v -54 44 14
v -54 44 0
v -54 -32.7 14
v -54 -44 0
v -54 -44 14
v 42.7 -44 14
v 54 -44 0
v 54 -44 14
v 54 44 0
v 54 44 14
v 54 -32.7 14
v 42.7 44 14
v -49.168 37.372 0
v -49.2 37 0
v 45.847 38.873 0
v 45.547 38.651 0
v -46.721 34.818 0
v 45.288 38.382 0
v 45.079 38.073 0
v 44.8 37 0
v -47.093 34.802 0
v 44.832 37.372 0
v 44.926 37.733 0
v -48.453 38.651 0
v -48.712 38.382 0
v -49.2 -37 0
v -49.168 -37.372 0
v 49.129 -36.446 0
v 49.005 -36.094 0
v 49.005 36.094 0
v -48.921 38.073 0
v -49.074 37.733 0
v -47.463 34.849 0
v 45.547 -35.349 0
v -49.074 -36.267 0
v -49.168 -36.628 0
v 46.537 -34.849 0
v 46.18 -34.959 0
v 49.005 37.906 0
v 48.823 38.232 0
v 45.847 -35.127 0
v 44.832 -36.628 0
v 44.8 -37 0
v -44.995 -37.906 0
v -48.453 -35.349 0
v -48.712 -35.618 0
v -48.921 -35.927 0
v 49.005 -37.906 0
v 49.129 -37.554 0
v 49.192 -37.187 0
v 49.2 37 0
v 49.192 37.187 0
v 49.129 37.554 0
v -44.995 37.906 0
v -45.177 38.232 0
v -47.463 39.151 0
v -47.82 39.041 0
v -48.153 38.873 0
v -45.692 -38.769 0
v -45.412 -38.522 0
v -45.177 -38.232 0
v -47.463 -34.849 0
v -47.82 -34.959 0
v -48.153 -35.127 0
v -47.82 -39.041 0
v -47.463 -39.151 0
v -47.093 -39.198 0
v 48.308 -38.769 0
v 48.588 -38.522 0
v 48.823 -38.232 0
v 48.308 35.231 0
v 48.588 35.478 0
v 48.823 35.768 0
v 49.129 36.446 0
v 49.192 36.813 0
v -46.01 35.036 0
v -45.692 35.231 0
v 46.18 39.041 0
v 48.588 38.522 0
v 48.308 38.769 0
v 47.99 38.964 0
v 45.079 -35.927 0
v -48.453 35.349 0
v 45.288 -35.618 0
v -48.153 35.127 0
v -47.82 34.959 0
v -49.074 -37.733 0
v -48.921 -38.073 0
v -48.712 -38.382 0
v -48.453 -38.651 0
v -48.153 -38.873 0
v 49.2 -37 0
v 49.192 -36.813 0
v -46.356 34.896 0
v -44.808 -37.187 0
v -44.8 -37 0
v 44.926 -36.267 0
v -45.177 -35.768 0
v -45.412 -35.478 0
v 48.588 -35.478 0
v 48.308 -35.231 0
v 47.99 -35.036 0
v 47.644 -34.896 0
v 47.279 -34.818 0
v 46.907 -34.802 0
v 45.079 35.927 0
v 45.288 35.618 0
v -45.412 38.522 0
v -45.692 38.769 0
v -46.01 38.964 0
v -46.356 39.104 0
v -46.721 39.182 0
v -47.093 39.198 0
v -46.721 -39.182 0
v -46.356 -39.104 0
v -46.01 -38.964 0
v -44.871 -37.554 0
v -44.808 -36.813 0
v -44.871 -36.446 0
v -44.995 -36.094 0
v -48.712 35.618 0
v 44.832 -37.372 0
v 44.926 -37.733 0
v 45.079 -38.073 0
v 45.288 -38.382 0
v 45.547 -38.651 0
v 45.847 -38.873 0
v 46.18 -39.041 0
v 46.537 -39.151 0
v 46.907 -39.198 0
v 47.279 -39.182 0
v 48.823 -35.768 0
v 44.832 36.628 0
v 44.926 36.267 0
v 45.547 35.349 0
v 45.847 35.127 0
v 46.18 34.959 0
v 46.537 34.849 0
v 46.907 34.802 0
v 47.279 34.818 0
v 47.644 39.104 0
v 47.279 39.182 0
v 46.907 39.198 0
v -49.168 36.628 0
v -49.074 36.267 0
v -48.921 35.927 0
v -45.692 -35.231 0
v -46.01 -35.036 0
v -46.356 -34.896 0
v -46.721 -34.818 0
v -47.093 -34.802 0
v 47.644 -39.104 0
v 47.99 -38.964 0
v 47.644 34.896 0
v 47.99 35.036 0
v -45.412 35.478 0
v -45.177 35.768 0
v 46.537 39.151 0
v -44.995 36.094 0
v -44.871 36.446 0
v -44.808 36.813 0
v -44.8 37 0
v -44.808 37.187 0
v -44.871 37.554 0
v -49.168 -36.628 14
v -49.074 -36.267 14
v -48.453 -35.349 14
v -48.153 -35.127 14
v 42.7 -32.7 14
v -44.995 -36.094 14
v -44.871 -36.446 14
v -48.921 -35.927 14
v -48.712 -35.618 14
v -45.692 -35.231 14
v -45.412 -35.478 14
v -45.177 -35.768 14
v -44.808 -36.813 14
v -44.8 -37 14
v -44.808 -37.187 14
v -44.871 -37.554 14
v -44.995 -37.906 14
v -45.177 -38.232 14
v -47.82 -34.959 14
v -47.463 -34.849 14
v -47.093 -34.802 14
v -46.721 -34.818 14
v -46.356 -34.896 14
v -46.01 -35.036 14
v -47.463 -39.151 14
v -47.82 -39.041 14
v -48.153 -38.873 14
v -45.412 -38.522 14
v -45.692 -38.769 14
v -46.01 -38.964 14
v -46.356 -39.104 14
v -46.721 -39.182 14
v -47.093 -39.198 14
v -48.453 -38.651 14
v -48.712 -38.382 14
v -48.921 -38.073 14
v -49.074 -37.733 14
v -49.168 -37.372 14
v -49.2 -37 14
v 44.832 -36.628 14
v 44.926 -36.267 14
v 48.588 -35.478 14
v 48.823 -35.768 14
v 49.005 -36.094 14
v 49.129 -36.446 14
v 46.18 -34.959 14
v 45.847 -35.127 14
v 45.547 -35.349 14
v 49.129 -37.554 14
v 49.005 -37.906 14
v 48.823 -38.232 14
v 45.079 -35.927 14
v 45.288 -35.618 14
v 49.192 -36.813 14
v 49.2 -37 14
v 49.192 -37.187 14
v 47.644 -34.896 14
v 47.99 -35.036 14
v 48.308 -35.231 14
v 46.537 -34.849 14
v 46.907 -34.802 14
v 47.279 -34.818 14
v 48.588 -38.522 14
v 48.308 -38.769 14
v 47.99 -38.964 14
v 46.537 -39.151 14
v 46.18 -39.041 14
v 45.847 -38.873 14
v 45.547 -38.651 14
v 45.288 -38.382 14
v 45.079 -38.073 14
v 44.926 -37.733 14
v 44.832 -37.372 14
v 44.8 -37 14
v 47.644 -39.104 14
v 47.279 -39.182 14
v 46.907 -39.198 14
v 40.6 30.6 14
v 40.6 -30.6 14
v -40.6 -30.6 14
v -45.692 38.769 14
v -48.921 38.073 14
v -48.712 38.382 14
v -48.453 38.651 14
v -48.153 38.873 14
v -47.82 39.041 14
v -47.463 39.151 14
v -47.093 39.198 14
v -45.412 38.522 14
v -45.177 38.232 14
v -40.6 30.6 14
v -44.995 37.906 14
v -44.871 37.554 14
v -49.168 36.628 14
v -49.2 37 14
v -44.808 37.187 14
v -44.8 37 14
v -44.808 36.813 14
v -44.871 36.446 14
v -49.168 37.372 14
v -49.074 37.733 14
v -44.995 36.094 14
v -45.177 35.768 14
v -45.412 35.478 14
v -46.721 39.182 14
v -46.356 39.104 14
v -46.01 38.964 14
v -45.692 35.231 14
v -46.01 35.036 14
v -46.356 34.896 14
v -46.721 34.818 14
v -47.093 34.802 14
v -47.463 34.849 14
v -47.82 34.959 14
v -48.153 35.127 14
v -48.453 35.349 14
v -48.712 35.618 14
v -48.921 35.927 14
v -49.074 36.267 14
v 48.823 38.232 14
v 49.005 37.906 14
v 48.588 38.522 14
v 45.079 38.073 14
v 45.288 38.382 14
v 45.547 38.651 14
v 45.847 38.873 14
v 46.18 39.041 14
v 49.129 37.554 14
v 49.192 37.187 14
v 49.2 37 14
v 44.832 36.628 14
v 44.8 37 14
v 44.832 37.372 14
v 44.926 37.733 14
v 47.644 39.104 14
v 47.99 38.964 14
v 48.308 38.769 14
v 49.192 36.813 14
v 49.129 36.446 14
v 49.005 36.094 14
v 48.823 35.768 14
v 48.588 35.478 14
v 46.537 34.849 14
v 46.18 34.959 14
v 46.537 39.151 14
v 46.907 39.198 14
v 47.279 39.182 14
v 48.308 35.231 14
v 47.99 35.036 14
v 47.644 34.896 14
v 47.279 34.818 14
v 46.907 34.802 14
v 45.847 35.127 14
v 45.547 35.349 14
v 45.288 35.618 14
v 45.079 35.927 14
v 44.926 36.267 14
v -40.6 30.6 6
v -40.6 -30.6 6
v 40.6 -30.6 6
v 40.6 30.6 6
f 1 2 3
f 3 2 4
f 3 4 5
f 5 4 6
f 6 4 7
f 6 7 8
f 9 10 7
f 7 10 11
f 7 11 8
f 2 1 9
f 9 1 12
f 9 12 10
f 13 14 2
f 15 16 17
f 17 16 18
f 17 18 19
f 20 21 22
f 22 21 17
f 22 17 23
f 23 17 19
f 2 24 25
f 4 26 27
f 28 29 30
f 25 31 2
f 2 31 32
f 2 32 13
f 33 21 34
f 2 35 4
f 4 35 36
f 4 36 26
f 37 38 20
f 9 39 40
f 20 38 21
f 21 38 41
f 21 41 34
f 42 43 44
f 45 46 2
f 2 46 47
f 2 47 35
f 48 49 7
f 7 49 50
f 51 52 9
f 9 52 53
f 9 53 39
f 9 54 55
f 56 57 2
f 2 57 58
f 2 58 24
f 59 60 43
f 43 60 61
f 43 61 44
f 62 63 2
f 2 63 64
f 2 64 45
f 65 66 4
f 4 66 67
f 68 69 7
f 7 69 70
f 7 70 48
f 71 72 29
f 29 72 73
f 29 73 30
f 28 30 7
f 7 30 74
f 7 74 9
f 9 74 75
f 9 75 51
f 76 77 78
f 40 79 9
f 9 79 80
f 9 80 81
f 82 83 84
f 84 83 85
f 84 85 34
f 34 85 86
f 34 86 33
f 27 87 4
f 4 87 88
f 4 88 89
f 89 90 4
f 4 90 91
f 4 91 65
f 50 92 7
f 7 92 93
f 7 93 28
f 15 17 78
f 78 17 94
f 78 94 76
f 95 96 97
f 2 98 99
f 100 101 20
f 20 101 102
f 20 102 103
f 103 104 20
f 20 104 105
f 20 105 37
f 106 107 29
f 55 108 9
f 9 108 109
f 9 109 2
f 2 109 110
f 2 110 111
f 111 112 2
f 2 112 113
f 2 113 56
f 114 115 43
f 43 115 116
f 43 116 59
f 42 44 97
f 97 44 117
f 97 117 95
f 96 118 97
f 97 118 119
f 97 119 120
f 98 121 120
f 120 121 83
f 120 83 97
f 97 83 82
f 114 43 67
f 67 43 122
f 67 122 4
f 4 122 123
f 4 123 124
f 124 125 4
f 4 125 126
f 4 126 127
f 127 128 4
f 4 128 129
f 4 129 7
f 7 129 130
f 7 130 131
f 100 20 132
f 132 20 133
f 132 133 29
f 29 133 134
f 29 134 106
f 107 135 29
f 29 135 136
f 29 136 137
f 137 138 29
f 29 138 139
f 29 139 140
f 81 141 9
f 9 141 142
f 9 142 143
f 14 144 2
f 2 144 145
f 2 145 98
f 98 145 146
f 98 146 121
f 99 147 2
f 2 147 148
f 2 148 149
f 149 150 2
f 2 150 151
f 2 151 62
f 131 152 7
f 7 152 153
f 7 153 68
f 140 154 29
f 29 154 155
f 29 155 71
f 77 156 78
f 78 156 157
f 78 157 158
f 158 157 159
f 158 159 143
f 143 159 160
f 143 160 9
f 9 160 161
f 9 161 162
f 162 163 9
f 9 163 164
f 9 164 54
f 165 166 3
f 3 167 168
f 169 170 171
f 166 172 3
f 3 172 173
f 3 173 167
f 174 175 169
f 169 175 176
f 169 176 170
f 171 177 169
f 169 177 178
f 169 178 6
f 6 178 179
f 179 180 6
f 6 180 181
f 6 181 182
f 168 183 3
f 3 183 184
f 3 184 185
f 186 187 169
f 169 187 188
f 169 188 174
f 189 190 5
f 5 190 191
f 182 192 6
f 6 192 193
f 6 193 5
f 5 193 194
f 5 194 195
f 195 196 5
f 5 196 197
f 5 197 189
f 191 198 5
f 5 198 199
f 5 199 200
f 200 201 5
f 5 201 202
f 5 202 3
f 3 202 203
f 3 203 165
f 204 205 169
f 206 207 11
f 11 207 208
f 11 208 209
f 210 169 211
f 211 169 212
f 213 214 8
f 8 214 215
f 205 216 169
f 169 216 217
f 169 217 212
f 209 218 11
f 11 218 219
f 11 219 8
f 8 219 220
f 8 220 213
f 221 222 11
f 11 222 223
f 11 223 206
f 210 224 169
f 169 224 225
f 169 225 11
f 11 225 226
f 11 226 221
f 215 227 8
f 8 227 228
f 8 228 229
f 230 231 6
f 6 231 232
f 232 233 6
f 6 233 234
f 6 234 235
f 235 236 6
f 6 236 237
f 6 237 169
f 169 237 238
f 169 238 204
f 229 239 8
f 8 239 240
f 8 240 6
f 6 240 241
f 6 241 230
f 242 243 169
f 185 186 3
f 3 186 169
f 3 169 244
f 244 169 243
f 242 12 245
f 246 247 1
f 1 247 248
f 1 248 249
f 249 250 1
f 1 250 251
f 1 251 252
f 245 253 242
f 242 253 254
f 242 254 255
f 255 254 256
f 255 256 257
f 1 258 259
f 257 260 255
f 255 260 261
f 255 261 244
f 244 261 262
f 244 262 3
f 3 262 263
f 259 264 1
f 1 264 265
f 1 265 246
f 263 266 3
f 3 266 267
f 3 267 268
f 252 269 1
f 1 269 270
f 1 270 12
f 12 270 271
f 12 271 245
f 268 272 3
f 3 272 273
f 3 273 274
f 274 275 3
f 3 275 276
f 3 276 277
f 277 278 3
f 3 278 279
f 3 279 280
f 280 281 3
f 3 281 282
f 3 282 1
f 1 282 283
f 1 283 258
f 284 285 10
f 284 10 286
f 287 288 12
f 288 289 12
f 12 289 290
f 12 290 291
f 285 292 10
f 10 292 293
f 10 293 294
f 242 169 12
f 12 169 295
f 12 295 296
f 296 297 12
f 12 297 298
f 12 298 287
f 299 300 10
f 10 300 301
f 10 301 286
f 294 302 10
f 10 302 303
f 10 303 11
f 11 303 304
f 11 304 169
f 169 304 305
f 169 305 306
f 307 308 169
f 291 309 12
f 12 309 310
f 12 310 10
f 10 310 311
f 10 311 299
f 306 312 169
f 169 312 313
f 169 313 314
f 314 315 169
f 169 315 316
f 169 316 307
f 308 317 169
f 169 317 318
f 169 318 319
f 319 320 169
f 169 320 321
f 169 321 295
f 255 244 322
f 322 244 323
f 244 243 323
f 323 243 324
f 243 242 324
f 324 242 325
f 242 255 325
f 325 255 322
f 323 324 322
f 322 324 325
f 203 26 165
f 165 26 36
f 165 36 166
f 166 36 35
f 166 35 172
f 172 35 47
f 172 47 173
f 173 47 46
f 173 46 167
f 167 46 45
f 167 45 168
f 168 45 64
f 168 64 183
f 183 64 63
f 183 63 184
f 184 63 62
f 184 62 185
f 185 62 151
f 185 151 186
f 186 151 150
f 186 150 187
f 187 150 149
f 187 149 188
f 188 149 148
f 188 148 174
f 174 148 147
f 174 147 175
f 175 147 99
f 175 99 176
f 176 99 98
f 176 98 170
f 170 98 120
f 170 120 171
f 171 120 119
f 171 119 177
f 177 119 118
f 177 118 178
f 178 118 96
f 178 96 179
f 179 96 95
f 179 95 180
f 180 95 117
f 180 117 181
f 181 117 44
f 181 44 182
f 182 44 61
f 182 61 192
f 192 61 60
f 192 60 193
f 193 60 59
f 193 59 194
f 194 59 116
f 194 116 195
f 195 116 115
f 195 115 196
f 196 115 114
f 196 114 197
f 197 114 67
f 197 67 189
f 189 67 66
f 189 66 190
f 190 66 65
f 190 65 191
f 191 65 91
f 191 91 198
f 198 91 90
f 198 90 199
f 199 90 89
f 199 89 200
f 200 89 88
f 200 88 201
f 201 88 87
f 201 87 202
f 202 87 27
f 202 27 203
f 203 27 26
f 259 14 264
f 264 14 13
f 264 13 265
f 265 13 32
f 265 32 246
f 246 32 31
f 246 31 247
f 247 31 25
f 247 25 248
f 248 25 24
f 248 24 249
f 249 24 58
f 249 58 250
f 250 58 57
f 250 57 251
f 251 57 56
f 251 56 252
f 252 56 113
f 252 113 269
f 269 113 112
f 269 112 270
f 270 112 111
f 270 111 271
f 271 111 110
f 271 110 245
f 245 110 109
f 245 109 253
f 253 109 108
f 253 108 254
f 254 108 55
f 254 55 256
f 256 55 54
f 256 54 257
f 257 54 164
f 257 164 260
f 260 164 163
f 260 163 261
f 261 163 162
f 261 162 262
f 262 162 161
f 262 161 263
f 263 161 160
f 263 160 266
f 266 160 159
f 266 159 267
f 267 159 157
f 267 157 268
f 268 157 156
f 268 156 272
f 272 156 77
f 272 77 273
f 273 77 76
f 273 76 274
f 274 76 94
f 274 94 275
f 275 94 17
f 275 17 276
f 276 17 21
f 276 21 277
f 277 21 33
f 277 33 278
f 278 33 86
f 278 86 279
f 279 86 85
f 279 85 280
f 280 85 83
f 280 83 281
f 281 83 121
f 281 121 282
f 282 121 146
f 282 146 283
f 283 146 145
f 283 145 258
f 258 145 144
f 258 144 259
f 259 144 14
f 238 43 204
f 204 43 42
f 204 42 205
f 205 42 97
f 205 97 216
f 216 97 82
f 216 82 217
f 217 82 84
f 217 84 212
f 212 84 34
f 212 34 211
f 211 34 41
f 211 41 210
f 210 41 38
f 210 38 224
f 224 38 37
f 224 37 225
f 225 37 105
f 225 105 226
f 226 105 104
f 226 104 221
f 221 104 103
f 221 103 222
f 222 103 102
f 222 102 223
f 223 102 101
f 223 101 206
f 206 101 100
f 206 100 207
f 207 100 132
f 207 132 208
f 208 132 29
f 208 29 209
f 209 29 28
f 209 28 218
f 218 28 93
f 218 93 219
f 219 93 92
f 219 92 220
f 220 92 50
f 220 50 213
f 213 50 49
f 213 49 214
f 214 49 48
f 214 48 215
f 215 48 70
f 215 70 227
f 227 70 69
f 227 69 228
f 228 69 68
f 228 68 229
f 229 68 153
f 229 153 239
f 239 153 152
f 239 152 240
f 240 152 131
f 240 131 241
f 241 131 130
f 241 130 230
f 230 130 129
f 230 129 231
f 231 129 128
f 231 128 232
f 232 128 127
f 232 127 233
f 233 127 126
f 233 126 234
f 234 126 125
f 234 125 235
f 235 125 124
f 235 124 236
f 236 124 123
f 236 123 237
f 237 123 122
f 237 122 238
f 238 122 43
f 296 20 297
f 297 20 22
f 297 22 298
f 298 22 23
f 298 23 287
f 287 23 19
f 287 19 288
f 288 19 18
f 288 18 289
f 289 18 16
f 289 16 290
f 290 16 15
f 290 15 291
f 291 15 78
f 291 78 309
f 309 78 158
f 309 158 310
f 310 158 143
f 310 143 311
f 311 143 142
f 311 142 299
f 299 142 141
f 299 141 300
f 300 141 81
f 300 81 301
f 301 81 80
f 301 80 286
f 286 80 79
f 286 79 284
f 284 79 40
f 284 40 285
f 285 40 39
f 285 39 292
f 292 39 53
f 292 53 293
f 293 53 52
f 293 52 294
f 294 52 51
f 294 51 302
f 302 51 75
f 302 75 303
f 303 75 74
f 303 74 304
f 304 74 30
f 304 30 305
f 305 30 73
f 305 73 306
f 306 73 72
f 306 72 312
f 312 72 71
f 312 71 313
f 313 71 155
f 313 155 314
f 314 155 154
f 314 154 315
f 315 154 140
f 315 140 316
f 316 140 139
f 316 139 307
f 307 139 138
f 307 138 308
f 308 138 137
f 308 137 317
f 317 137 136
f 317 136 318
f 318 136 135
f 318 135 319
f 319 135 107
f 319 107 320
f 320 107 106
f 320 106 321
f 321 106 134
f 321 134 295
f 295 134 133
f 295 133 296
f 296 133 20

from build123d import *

# Parameters (mm, degrees)
SKETCH2_W                   = 108
SKETCH2_H                   = 88
FIXTURE_FLOOR_DEPTH         = 6
ENCLOSURE_NEST_START        = 6
SKETCH3_W                   = 108
SKETCH3_H                   = 88
SKETCH3_W_2                 = 81.2
SKETCH3_H_2                 = 61.2
ENCLOSURE_NEST_DEPTH        = 8
SKETCH4_R                   = 2.2
BENCH_MOUNT_CLEARANCE_DEPTH = 14
SKETCH5_R                   = 2.2
CUT_EXTRUDE2_DEPTH          = 14
SKETCH6_R                   = 2.2
CUT_EXTRUDE3_DEPTH          = 14
SKETCH7_R                   = 2.2
CUT_EXTRUDE4_DEPTH          = 14


with BuildPart() as part:
    # Sketch2 → Fixture_floor (new body)
    with BuildSketch(Plane.XY):
        Rectangle(SKETCH2_W, SKETCH2_H)
    extrude(amount=FIXTURE_FLOOR_DEPTH)

    # Sketch3 → Enclosure_nest (add)
    with BuildSketch(Plane.XY.offset(ENCLOSURE_NEST_START)):
        Rectangle(SKETCH3_W, SKETCH3_H)
        Rectangle(SKETCH3_W_2, SKETCH3_H_2, mode=Mode.SUBTRACT)
    extrude(amount=ENCLOSURE_NEST_DEPTH)

    # Sketch4 → Bench_mount_clearance (cut)
    with BuildSketch(Plane.XY):
        with Locations((-47, -37)):
            Circle(SKETCH4_R)
    extrude(amount=BENCH_MOUNT_CLEARANCE_DEPTH, mode=Mode.SUBTRACT)

    # Sketch5 → Cut-Extrude2 (cut)
    with BuildSketch(Plane.XY):
        with Locations((-47, 37)):
            Circle(SKETCH5_R)
    extrude(amount=CUT_EXTRUDE2_DEPTH, mode=Mode.SUBTRACT)

    # Sketch6 → Cut-Extrude3 (cut)
    with BuildSketch(Plane.XY):
        with Locations((47, -37)):
            Circle(SKETCH6_R)
    extrude(amount=CUT_EXTRUDE3_DEPTH, mode=Mode.SUBTRACT)

    # Sketch7 → Cut-Extrude4 (cut)
    with BuildSketch(Plane.XY):
        with Locations((47, 37)):
            Circle(SKETCH7_R)
    extrude(amount=CUT_EXTRUDE4_DEPTH, mode=Mode.SUBTRACT)


solid = part.part
